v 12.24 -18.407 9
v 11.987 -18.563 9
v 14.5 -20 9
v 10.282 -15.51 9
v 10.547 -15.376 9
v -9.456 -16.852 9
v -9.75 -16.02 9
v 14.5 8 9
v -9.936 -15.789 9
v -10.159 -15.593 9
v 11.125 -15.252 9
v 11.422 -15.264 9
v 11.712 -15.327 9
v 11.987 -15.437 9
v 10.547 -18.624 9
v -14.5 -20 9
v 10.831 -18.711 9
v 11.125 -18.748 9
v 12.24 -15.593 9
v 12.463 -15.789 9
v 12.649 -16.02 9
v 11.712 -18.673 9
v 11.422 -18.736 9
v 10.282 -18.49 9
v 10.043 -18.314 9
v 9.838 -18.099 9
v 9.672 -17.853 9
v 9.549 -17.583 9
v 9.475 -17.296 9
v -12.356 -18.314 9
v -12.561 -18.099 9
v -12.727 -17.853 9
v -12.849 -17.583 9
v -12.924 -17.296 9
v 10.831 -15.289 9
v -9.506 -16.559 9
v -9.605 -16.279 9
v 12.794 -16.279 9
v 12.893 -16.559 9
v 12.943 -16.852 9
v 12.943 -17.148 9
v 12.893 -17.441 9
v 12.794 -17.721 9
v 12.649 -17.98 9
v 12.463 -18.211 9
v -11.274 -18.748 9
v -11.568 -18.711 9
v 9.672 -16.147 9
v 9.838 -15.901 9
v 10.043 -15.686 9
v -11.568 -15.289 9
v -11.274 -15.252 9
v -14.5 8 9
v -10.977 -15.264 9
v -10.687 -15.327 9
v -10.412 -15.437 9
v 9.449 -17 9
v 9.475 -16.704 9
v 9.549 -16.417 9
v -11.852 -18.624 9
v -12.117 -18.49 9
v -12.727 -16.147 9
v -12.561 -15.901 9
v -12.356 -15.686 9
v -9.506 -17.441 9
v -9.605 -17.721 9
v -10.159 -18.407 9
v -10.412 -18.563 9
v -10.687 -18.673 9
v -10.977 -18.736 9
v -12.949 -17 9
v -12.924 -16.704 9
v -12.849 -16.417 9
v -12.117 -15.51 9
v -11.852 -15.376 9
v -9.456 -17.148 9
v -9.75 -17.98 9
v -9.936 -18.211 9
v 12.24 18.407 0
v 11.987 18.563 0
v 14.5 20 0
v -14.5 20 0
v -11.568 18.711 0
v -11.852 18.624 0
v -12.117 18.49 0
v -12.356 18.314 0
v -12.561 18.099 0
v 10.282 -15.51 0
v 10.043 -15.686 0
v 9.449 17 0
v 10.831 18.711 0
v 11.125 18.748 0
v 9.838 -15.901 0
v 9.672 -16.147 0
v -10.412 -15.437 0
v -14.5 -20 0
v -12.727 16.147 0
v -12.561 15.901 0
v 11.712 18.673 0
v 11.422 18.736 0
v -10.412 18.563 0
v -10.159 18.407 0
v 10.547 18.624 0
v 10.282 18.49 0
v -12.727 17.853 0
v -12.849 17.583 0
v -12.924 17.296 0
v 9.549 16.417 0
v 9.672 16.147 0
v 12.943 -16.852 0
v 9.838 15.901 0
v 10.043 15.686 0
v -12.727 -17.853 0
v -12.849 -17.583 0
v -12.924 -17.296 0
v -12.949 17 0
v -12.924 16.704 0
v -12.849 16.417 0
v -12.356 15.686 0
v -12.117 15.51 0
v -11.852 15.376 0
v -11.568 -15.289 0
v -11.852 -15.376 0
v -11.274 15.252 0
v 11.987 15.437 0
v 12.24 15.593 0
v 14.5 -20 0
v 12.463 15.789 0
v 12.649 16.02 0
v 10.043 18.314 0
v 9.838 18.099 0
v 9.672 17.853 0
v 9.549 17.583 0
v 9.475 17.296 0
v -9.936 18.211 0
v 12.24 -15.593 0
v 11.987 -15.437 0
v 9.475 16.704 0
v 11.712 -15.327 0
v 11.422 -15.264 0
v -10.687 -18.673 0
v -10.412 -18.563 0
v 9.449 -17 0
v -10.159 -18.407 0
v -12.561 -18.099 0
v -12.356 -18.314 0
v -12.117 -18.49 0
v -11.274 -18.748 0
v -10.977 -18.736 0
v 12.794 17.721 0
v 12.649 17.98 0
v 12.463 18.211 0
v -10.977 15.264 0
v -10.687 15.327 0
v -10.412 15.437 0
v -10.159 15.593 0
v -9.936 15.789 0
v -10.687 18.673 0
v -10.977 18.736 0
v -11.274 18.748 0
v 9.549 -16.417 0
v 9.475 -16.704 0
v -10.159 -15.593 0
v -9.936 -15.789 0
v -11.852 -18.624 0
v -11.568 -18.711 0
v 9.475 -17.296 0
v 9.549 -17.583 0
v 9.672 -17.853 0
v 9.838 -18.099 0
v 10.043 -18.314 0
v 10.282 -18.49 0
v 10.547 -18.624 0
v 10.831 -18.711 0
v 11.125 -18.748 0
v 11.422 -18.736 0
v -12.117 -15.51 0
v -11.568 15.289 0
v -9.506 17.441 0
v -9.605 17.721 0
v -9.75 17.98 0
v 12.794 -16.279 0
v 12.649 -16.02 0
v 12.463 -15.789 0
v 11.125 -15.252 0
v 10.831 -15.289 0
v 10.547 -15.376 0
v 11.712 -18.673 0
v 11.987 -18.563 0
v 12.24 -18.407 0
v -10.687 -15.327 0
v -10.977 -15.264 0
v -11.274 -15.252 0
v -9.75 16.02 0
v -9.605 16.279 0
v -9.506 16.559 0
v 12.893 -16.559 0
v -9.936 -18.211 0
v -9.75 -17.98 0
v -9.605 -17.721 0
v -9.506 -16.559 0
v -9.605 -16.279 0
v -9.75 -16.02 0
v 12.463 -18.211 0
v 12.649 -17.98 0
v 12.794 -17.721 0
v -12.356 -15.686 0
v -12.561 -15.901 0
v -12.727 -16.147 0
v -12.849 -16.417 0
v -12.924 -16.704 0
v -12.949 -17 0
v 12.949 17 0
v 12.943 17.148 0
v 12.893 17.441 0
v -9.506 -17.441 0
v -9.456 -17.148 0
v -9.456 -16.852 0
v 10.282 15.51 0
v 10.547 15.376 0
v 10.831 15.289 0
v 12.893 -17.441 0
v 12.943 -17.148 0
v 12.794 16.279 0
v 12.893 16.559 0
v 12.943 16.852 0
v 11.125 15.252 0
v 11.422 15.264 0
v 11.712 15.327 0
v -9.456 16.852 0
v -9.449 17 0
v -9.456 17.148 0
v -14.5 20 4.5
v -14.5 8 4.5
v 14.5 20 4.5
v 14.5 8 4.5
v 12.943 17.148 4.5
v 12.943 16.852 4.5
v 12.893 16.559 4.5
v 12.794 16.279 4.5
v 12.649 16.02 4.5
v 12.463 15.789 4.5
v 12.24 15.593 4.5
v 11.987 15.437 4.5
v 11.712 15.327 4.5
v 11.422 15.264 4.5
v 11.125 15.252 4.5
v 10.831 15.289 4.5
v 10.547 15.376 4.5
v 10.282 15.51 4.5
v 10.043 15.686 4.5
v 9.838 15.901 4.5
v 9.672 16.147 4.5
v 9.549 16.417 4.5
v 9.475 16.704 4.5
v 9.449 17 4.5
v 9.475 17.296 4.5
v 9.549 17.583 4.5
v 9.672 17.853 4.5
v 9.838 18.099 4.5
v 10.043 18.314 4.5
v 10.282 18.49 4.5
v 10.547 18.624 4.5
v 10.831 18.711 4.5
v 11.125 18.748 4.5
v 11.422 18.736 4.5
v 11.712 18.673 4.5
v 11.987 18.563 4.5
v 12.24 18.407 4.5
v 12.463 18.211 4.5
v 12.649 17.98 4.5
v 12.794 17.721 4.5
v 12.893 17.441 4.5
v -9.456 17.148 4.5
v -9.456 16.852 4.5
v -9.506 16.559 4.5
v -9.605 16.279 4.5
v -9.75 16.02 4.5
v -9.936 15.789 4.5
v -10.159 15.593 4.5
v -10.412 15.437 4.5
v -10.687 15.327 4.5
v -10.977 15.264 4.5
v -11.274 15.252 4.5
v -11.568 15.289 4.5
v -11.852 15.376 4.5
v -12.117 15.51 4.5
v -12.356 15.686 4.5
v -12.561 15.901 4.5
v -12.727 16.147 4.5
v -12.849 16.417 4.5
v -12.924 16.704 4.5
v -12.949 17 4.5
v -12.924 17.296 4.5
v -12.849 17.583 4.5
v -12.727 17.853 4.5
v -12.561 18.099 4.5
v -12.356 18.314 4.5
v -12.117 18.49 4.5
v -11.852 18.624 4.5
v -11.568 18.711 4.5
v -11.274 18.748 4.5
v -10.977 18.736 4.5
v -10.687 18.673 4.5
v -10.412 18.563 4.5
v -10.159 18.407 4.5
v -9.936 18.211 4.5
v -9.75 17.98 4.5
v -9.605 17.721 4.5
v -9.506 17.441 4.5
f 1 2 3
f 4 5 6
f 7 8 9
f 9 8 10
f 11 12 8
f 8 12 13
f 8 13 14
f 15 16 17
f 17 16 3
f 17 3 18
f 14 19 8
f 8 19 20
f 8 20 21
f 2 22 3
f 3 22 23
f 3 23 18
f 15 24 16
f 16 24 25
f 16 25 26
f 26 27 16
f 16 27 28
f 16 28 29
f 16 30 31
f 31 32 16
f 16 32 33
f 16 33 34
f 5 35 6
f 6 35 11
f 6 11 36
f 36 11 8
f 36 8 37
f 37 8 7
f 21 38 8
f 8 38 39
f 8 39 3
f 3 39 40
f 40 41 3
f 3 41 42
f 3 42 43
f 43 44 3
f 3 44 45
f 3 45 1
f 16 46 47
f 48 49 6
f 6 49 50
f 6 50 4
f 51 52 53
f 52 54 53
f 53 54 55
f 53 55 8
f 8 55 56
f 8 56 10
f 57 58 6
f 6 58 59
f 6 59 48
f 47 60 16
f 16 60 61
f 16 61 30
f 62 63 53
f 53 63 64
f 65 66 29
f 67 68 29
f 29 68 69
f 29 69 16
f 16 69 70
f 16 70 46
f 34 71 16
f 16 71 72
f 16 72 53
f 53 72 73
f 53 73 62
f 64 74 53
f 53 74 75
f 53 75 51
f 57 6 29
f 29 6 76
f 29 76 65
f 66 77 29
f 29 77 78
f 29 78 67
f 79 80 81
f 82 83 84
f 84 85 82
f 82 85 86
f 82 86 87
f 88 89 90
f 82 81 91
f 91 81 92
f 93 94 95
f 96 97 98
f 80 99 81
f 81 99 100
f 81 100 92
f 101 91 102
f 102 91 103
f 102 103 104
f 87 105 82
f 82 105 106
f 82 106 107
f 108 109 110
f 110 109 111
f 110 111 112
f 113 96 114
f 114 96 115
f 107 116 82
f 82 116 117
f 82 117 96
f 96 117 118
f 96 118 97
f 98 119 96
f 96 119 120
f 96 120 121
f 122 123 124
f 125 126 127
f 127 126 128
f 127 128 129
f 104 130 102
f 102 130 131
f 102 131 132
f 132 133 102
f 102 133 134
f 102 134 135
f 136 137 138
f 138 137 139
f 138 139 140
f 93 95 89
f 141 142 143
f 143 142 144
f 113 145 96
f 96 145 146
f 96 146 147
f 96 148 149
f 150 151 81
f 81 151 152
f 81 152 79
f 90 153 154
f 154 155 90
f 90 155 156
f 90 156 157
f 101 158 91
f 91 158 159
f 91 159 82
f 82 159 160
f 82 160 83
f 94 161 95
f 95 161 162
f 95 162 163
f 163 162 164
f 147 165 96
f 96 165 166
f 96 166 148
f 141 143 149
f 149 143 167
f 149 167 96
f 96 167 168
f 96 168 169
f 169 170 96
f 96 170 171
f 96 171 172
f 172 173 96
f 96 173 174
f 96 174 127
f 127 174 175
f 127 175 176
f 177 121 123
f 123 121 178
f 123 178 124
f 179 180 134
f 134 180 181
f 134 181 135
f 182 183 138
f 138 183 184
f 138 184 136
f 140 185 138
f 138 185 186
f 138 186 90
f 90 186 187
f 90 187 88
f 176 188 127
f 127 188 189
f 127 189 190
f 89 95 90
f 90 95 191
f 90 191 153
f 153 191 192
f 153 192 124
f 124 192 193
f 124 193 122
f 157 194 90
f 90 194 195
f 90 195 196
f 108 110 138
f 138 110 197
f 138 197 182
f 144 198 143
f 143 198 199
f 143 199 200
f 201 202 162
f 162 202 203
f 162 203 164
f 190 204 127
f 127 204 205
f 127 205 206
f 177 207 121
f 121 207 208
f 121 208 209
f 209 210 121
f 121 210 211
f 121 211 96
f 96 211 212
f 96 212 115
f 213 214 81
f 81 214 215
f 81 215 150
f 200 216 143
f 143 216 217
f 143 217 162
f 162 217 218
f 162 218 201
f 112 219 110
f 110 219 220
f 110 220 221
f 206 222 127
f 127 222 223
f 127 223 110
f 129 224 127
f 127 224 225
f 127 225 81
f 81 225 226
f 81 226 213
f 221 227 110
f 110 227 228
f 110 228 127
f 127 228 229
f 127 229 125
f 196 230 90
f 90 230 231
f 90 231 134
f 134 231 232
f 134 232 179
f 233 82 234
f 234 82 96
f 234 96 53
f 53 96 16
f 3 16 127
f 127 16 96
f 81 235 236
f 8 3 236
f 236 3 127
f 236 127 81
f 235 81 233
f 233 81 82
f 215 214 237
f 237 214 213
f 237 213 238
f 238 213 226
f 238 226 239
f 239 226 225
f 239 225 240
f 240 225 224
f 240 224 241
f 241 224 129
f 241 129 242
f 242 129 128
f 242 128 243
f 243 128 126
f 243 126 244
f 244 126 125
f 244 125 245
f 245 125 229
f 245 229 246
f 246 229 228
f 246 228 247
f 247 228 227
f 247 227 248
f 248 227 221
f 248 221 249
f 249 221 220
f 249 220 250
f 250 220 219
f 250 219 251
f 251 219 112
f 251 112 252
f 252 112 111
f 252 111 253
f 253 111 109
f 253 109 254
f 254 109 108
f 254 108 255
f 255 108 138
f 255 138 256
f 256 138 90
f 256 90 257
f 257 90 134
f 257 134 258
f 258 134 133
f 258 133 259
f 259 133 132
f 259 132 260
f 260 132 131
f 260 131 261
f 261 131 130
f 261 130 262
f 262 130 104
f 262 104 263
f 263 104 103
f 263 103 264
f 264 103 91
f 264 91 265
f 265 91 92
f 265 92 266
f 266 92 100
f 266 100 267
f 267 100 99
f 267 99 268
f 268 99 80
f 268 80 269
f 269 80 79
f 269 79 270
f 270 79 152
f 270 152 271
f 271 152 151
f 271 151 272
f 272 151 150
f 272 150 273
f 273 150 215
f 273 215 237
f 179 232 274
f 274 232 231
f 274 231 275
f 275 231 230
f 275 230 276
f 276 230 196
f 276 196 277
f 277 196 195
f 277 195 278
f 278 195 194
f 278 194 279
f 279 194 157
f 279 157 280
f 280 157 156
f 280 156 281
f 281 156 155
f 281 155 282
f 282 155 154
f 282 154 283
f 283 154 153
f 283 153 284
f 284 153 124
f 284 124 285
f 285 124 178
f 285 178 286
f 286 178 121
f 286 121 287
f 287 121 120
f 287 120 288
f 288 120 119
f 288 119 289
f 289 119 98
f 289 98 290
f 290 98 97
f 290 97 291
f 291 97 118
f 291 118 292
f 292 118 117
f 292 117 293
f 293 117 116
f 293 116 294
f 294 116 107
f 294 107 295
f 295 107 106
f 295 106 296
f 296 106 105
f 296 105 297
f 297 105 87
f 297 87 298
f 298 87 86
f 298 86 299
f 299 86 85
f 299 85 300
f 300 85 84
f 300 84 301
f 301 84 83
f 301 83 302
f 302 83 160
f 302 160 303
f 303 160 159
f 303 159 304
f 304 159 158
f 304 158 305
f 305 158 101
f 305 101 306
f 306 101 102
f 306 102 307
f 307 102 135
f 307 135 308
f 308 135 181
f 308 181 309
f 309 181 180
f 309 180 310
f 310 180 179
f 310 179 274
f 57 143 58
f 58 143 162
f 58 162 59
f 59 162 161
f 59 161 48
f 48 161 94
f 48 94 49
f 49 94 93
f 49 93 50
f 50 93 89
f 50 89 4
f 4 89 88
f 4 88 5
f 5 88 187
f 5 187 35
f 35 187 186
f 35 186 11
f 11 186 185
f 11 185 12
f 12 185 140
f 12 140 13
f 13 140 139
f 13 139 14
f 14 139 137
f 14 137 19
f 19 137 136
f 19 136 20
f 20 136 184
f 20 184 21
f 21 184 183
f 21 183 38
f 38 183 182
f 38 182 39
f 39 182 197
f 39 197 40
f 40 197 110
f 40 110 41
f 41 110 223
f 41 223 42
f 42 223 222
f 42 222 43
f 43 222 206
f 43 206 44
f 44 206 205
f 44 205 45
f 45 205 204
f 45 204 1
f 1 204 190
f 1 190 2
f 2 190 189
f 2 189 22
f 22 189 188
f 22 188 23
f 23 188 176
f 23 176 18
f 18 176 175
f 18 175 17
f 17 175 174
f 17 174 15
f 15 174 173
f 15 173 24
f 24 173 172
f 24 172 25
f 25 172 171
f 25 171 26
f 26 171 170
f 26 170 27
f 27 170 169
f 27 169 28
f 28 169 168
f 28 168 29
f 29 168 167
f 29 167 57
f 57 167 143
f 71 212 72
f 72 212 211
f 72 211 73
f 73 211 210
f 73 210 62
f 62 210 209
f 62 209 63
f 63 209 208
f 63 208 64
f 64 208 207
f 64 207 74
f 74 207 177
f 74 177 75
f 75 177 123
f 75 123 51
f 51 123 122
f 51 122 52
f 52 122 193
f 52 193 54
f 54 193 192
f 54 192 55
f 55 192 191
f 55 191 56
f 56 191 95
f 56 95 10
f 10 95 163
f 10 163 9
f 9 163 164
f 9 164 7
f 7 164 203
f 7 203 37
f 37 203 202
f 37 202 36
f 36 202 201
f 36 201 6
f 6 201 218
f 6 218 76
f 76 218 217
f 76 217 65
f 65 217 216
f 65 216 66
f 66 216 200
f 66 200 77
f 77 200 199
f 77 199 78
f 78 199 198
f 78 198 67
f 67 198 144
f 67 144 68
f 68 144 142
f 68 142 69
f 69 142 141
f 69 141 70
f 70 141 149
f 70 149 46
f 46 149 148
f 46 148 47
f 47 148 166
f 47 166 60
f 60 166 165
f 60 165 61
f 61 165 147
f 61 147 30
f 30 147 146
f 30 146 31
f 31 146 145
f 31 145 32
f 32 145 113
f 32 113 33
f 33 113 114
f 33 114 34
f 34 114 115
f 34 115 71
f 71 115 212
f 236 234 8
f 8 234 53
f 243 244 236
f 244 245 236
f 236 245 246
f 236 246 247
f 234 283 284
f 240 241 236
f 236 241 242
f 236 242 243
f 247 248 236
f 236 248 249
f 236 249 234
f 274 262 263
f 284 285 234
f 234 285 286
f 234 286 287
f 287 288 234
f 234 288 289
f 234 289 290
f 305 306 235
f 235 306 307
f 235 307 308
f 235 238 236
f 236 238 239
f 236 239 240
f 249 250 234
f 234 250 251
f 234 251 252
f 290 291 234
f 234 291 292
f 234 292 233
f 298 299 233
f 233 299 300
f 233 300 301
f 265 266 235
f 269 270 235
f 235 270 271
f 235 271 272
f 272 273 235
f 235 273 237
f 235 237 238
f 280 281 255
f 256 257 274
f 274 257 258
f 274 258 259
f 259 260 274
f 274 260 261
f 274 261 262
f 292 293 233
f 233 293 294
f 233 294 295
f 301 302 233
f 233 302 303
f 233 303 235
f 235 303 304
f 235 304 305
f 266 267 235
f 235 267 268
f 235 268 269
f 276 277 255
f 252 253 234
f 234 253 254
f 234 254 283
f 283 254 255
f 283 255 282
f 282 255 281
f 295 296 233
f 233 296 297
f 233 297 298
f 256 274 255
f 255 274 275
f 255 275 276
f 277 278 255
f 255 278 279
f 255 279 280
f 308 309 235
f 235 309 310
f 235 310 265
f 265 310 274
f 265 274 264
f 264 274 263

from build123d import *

# Parameters (mm, degrees)
SKETCH_1_W          = 29
SKETCH_1_H          = 40
SKETCH_1_R          = 1.75
EXTRUDE_1_DEPTH     = 9
SKETCH_3_W          = 29
SKETCH_3_H          = 12
CUT_EXTRUDE_2_DEPTH = 5


with BuildPart() as part:
    # 스케치1 → 보스-돌출1 (new body)
    with BuildSketch(Plane.XY):
        Rectangle(SKETCH_1_W, SKETCH_1_H)
        with Locations((11.199423754, 17)):
            Circle(SKETCH_1_R, mode=Mode.SUBTRACT)
        with Locations((-11.199423754, 17)):
            Circle(SKETCH_1_R, mode=Mode.SUBTRACT)
        with Locations(Location((11.199423754, -17, 0), (0, 0, 180))):
            Circle(SKETCH_1_R, mode=Mode.SUBTRACT)
        with Locations(Location((-11.199423754, -17, 0), (0, 0, 180))):
            Circle(SKETCH_1_R, mode=Mode.SUBTRACT)
    extrude(amount=EXTRUDE_1_DEPTH)

    # 스케치3 → 컷-돌출2 (cut)
    with BuildSketch(Plane(origin=(0, 0, 4.5), x_dir=(-1, 0, 0), z_dir=(0, 0, -1))):
        with Locations((0, 14)):
            Rectangle(SKETCH_3_W, SKETCH_3_H)
    extrude(amount=-CUT_EXTRUDE_2_DEPTH, mode=Mode.SUBTRACT)


solid = part.part
